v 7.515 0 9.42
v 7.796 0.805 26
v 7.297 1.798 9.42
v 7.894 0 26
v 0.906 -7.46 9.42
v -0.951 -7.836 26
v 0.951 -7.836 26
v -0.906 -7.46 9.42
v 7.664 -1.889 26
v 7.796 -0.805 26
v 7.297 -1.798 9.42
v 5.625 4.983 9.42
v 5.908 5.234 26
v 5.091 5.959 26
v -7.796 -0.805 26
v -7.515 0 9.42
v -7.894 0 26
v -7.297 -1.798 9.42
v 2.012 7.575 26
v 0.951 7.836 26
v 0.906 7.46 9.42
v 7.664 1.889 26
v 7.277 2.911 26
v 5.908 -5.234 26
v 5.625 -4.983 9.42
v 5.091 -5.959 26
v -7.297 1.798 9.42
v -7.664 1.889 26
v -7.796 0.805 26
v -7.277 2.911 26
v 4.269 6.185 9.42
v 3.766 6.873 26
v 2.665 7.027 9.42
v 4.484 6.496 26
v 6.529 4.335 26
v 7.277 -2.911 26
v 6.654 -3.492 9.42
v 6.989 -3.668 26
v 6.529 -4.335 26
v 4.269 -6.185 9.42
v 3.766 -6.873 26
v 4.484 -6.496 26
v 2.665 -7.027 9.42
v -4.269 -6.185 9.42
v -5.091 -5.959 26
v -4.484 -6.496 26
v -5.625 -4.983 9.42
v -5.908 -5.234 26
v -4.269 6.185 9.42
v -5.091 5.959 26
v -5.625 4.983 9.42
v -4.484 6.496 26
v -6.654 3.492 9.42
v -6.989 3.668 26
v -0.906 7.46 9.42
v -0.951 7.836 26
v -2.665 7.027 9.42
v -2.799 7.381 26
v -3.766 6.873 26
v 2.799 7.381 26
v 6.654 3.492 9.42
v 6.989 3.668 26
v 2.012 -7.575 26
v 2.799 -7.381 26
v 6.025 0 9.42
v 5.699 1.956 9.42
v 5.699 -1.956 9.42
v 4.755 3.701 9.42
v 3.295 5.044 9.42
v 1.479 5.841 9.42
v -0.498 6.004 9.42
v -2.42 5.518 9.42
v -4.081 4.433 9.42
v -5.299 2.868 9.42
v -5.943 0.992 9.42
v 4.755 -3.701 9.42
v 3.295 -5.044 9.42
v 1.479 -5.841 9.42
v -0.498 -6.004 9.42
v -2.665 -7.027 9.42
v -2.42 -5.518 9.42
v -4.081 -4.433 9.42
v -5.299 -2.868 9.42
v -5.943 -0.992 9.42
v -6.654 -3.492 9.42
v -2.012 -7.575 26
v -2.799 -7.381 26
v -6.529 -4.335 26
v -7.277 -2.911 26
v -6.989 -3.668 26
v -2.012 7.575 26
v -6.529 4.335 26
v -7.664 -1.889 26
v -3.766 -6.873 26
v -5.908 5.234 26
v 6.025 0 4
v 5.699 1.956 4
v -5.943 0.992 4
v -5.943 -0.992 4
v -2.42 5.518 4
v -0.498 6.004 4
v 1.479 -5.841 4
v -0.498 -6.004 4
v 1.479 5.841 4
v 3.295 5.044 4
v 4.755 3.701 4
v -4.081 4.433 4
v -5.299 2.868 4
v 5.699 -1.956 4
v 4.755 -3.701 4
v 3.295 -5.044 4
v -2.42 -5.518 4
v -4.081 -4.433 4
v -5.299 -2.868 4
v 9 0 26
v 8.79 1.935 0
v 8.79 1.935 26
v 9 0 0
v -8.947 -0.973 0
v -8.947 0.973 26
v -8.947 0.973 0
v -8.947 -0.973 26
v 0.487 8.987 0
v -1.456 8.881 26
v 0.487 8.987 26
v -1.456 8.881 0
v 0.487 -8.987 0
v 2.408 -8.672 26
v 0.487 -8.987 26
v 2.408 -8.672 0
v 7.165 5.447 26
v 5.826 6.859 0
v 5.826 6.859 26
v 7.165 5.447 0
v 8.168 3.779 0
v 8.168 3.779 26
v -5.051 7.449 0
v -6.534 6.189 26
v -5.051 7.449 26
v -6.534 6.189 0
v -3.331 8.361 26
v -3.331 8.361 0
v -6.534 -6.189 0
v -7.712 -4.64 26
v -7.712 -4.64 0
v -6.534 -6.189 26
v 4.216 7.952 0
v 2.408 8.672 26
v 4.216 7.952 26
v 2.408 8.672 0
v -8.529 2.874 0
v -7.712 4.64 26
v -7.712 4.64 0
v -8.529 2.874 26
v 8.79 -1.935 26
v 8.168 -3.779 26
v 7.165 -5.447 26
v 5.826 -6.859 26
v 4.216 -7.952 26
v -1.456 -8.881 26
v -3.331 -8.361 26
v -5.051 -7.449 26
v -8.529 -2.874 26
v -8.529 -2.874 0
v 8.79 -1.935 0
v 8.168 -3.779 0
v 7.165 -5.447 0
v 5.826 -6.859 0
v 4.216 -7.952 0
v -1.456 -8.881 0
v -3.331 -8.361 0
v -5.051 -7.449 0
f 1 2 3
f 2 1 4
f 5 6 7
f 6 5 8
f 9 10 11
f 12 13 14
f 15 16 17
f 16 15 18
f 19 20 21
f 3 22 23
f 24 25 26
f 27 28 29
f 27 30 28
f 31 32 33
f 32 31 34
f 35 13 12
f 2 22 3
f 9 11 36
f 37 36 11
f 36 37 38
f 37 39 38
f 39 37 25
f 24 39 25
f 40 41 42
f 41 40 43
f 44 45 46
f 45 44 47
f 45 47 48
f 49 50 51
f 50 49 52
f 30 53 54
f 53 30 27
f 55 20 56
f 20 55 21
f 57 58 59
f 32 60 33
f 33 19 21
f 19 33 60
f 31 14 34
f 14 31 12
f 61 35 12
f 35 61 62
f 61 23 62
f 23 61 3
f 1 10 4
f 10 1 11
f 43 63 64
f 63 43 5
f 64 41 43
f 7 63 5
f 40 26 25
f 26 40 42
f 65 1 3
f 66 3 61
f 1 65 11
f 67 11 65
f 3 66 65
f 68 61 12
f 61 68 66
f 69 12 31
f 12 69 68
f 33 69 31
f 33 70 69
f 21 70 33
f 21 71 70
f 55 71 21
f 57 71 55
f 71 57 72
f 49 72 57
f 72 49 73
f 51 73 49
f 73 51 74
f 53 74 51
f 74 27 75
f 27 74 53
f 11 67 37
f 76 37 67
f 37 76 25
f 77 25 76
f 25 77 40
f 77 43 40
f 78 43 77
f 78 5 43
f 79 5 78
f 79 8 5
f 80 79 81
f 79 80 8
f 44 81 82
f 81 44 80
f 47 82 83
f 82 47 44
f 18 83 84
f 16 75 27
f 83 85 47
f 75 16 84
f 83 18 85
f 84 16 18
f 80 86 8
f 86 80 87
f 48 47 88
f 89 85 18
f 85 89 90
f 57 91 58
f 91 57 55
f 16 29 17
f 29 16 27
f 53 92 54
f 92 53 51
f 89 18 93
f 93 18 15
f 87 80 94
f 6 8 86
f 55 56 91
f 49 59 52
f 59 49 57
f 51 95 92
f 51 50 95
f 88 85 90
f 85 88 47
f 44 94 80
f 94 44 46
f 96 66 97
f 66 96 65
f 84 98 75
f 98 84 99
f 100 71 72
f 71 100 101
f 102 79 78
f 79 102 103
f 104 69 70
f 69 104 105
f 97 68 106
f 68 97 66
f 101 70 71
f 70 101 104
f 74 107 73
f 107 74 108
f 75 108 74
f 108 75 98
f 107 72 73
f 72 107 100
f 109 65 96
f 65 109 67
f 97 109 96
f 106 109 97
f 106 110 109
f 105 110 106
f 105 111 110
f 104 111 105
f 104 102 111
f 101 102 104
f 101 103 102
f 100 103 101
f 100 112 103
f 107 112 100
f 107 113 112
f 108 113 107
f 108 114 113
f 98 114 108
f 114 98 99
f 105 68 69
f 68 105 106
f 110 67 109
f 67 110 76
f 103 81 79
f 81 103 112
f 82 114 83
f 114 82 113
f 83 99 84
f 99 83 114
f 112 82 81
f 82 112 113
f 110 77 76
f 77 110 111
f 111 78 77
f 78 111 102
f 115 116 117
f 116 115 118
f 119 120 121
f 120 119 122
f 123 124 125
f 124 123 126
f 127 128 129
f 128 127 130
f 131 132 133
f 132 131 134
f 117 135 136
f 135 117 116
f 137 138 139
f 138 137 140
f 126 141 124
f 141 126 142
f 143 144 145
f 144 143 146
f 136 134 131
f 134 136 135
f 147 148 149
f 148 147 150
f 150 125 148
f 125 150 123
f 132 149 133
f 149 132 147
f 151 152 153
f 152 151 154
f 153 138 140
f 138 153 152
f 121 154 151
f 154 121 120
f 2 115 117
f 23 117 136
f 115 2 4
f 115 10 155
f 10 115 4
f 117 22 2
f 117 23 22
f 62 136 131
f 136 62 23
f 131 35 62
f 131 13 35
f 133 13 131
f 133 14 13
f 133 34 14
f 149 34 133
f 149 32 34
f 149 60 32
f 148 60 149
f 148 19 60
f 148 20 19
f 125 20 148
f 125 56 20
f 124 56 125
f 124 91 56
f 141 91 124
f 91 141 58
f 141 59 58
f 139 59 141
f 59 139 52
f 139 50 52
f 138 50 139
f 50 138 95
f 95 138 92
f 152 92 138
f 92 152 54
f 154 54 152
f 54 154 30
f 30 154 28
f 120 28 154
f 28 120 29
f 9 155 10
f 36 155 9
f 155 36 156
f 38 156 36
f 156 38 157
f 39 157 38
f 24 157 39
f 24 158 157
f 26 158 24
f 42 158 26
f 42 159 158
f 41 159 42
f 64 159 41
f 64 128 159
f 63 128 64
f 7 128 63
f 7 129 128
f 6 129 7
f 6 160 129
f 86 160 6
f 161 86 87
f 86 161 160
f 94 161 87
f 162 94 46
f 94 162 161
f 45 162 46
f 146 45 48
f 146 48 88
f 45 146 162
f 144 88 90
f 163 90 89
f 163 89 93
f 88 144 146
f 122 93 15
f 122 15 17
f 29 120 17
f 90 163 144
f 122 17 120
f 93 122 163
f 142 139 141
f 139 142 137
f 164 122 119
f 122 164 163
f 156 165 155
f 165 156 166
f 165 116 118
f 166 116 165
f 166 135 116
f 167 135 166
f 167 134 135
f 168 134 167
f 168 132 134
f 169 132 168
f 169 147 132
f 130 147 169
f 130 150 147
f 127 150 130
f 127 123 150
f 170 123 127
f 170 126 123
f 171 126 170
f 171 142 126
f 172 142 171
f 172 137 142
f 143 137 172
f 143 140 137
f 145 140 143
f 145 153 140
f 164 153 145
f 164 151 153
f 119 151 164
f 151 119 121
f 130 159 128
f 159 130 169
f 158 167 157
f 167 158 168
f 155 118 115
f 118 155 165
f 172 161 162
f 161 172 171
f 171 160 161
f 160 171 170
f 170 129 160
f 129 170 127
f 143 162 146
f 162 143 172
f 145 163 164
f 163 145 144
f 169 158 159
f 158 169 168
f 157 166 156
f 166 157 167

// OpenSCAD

difference()
{
cylinder(h=26,r=9);
translate([0,0,4])
{ 
    translate([0,0,5.42])cylinder(h=30,r2=16.4/2,r=15.03/2);
    cylinder(h=5.42 ,r=12.05/2);
}
}
